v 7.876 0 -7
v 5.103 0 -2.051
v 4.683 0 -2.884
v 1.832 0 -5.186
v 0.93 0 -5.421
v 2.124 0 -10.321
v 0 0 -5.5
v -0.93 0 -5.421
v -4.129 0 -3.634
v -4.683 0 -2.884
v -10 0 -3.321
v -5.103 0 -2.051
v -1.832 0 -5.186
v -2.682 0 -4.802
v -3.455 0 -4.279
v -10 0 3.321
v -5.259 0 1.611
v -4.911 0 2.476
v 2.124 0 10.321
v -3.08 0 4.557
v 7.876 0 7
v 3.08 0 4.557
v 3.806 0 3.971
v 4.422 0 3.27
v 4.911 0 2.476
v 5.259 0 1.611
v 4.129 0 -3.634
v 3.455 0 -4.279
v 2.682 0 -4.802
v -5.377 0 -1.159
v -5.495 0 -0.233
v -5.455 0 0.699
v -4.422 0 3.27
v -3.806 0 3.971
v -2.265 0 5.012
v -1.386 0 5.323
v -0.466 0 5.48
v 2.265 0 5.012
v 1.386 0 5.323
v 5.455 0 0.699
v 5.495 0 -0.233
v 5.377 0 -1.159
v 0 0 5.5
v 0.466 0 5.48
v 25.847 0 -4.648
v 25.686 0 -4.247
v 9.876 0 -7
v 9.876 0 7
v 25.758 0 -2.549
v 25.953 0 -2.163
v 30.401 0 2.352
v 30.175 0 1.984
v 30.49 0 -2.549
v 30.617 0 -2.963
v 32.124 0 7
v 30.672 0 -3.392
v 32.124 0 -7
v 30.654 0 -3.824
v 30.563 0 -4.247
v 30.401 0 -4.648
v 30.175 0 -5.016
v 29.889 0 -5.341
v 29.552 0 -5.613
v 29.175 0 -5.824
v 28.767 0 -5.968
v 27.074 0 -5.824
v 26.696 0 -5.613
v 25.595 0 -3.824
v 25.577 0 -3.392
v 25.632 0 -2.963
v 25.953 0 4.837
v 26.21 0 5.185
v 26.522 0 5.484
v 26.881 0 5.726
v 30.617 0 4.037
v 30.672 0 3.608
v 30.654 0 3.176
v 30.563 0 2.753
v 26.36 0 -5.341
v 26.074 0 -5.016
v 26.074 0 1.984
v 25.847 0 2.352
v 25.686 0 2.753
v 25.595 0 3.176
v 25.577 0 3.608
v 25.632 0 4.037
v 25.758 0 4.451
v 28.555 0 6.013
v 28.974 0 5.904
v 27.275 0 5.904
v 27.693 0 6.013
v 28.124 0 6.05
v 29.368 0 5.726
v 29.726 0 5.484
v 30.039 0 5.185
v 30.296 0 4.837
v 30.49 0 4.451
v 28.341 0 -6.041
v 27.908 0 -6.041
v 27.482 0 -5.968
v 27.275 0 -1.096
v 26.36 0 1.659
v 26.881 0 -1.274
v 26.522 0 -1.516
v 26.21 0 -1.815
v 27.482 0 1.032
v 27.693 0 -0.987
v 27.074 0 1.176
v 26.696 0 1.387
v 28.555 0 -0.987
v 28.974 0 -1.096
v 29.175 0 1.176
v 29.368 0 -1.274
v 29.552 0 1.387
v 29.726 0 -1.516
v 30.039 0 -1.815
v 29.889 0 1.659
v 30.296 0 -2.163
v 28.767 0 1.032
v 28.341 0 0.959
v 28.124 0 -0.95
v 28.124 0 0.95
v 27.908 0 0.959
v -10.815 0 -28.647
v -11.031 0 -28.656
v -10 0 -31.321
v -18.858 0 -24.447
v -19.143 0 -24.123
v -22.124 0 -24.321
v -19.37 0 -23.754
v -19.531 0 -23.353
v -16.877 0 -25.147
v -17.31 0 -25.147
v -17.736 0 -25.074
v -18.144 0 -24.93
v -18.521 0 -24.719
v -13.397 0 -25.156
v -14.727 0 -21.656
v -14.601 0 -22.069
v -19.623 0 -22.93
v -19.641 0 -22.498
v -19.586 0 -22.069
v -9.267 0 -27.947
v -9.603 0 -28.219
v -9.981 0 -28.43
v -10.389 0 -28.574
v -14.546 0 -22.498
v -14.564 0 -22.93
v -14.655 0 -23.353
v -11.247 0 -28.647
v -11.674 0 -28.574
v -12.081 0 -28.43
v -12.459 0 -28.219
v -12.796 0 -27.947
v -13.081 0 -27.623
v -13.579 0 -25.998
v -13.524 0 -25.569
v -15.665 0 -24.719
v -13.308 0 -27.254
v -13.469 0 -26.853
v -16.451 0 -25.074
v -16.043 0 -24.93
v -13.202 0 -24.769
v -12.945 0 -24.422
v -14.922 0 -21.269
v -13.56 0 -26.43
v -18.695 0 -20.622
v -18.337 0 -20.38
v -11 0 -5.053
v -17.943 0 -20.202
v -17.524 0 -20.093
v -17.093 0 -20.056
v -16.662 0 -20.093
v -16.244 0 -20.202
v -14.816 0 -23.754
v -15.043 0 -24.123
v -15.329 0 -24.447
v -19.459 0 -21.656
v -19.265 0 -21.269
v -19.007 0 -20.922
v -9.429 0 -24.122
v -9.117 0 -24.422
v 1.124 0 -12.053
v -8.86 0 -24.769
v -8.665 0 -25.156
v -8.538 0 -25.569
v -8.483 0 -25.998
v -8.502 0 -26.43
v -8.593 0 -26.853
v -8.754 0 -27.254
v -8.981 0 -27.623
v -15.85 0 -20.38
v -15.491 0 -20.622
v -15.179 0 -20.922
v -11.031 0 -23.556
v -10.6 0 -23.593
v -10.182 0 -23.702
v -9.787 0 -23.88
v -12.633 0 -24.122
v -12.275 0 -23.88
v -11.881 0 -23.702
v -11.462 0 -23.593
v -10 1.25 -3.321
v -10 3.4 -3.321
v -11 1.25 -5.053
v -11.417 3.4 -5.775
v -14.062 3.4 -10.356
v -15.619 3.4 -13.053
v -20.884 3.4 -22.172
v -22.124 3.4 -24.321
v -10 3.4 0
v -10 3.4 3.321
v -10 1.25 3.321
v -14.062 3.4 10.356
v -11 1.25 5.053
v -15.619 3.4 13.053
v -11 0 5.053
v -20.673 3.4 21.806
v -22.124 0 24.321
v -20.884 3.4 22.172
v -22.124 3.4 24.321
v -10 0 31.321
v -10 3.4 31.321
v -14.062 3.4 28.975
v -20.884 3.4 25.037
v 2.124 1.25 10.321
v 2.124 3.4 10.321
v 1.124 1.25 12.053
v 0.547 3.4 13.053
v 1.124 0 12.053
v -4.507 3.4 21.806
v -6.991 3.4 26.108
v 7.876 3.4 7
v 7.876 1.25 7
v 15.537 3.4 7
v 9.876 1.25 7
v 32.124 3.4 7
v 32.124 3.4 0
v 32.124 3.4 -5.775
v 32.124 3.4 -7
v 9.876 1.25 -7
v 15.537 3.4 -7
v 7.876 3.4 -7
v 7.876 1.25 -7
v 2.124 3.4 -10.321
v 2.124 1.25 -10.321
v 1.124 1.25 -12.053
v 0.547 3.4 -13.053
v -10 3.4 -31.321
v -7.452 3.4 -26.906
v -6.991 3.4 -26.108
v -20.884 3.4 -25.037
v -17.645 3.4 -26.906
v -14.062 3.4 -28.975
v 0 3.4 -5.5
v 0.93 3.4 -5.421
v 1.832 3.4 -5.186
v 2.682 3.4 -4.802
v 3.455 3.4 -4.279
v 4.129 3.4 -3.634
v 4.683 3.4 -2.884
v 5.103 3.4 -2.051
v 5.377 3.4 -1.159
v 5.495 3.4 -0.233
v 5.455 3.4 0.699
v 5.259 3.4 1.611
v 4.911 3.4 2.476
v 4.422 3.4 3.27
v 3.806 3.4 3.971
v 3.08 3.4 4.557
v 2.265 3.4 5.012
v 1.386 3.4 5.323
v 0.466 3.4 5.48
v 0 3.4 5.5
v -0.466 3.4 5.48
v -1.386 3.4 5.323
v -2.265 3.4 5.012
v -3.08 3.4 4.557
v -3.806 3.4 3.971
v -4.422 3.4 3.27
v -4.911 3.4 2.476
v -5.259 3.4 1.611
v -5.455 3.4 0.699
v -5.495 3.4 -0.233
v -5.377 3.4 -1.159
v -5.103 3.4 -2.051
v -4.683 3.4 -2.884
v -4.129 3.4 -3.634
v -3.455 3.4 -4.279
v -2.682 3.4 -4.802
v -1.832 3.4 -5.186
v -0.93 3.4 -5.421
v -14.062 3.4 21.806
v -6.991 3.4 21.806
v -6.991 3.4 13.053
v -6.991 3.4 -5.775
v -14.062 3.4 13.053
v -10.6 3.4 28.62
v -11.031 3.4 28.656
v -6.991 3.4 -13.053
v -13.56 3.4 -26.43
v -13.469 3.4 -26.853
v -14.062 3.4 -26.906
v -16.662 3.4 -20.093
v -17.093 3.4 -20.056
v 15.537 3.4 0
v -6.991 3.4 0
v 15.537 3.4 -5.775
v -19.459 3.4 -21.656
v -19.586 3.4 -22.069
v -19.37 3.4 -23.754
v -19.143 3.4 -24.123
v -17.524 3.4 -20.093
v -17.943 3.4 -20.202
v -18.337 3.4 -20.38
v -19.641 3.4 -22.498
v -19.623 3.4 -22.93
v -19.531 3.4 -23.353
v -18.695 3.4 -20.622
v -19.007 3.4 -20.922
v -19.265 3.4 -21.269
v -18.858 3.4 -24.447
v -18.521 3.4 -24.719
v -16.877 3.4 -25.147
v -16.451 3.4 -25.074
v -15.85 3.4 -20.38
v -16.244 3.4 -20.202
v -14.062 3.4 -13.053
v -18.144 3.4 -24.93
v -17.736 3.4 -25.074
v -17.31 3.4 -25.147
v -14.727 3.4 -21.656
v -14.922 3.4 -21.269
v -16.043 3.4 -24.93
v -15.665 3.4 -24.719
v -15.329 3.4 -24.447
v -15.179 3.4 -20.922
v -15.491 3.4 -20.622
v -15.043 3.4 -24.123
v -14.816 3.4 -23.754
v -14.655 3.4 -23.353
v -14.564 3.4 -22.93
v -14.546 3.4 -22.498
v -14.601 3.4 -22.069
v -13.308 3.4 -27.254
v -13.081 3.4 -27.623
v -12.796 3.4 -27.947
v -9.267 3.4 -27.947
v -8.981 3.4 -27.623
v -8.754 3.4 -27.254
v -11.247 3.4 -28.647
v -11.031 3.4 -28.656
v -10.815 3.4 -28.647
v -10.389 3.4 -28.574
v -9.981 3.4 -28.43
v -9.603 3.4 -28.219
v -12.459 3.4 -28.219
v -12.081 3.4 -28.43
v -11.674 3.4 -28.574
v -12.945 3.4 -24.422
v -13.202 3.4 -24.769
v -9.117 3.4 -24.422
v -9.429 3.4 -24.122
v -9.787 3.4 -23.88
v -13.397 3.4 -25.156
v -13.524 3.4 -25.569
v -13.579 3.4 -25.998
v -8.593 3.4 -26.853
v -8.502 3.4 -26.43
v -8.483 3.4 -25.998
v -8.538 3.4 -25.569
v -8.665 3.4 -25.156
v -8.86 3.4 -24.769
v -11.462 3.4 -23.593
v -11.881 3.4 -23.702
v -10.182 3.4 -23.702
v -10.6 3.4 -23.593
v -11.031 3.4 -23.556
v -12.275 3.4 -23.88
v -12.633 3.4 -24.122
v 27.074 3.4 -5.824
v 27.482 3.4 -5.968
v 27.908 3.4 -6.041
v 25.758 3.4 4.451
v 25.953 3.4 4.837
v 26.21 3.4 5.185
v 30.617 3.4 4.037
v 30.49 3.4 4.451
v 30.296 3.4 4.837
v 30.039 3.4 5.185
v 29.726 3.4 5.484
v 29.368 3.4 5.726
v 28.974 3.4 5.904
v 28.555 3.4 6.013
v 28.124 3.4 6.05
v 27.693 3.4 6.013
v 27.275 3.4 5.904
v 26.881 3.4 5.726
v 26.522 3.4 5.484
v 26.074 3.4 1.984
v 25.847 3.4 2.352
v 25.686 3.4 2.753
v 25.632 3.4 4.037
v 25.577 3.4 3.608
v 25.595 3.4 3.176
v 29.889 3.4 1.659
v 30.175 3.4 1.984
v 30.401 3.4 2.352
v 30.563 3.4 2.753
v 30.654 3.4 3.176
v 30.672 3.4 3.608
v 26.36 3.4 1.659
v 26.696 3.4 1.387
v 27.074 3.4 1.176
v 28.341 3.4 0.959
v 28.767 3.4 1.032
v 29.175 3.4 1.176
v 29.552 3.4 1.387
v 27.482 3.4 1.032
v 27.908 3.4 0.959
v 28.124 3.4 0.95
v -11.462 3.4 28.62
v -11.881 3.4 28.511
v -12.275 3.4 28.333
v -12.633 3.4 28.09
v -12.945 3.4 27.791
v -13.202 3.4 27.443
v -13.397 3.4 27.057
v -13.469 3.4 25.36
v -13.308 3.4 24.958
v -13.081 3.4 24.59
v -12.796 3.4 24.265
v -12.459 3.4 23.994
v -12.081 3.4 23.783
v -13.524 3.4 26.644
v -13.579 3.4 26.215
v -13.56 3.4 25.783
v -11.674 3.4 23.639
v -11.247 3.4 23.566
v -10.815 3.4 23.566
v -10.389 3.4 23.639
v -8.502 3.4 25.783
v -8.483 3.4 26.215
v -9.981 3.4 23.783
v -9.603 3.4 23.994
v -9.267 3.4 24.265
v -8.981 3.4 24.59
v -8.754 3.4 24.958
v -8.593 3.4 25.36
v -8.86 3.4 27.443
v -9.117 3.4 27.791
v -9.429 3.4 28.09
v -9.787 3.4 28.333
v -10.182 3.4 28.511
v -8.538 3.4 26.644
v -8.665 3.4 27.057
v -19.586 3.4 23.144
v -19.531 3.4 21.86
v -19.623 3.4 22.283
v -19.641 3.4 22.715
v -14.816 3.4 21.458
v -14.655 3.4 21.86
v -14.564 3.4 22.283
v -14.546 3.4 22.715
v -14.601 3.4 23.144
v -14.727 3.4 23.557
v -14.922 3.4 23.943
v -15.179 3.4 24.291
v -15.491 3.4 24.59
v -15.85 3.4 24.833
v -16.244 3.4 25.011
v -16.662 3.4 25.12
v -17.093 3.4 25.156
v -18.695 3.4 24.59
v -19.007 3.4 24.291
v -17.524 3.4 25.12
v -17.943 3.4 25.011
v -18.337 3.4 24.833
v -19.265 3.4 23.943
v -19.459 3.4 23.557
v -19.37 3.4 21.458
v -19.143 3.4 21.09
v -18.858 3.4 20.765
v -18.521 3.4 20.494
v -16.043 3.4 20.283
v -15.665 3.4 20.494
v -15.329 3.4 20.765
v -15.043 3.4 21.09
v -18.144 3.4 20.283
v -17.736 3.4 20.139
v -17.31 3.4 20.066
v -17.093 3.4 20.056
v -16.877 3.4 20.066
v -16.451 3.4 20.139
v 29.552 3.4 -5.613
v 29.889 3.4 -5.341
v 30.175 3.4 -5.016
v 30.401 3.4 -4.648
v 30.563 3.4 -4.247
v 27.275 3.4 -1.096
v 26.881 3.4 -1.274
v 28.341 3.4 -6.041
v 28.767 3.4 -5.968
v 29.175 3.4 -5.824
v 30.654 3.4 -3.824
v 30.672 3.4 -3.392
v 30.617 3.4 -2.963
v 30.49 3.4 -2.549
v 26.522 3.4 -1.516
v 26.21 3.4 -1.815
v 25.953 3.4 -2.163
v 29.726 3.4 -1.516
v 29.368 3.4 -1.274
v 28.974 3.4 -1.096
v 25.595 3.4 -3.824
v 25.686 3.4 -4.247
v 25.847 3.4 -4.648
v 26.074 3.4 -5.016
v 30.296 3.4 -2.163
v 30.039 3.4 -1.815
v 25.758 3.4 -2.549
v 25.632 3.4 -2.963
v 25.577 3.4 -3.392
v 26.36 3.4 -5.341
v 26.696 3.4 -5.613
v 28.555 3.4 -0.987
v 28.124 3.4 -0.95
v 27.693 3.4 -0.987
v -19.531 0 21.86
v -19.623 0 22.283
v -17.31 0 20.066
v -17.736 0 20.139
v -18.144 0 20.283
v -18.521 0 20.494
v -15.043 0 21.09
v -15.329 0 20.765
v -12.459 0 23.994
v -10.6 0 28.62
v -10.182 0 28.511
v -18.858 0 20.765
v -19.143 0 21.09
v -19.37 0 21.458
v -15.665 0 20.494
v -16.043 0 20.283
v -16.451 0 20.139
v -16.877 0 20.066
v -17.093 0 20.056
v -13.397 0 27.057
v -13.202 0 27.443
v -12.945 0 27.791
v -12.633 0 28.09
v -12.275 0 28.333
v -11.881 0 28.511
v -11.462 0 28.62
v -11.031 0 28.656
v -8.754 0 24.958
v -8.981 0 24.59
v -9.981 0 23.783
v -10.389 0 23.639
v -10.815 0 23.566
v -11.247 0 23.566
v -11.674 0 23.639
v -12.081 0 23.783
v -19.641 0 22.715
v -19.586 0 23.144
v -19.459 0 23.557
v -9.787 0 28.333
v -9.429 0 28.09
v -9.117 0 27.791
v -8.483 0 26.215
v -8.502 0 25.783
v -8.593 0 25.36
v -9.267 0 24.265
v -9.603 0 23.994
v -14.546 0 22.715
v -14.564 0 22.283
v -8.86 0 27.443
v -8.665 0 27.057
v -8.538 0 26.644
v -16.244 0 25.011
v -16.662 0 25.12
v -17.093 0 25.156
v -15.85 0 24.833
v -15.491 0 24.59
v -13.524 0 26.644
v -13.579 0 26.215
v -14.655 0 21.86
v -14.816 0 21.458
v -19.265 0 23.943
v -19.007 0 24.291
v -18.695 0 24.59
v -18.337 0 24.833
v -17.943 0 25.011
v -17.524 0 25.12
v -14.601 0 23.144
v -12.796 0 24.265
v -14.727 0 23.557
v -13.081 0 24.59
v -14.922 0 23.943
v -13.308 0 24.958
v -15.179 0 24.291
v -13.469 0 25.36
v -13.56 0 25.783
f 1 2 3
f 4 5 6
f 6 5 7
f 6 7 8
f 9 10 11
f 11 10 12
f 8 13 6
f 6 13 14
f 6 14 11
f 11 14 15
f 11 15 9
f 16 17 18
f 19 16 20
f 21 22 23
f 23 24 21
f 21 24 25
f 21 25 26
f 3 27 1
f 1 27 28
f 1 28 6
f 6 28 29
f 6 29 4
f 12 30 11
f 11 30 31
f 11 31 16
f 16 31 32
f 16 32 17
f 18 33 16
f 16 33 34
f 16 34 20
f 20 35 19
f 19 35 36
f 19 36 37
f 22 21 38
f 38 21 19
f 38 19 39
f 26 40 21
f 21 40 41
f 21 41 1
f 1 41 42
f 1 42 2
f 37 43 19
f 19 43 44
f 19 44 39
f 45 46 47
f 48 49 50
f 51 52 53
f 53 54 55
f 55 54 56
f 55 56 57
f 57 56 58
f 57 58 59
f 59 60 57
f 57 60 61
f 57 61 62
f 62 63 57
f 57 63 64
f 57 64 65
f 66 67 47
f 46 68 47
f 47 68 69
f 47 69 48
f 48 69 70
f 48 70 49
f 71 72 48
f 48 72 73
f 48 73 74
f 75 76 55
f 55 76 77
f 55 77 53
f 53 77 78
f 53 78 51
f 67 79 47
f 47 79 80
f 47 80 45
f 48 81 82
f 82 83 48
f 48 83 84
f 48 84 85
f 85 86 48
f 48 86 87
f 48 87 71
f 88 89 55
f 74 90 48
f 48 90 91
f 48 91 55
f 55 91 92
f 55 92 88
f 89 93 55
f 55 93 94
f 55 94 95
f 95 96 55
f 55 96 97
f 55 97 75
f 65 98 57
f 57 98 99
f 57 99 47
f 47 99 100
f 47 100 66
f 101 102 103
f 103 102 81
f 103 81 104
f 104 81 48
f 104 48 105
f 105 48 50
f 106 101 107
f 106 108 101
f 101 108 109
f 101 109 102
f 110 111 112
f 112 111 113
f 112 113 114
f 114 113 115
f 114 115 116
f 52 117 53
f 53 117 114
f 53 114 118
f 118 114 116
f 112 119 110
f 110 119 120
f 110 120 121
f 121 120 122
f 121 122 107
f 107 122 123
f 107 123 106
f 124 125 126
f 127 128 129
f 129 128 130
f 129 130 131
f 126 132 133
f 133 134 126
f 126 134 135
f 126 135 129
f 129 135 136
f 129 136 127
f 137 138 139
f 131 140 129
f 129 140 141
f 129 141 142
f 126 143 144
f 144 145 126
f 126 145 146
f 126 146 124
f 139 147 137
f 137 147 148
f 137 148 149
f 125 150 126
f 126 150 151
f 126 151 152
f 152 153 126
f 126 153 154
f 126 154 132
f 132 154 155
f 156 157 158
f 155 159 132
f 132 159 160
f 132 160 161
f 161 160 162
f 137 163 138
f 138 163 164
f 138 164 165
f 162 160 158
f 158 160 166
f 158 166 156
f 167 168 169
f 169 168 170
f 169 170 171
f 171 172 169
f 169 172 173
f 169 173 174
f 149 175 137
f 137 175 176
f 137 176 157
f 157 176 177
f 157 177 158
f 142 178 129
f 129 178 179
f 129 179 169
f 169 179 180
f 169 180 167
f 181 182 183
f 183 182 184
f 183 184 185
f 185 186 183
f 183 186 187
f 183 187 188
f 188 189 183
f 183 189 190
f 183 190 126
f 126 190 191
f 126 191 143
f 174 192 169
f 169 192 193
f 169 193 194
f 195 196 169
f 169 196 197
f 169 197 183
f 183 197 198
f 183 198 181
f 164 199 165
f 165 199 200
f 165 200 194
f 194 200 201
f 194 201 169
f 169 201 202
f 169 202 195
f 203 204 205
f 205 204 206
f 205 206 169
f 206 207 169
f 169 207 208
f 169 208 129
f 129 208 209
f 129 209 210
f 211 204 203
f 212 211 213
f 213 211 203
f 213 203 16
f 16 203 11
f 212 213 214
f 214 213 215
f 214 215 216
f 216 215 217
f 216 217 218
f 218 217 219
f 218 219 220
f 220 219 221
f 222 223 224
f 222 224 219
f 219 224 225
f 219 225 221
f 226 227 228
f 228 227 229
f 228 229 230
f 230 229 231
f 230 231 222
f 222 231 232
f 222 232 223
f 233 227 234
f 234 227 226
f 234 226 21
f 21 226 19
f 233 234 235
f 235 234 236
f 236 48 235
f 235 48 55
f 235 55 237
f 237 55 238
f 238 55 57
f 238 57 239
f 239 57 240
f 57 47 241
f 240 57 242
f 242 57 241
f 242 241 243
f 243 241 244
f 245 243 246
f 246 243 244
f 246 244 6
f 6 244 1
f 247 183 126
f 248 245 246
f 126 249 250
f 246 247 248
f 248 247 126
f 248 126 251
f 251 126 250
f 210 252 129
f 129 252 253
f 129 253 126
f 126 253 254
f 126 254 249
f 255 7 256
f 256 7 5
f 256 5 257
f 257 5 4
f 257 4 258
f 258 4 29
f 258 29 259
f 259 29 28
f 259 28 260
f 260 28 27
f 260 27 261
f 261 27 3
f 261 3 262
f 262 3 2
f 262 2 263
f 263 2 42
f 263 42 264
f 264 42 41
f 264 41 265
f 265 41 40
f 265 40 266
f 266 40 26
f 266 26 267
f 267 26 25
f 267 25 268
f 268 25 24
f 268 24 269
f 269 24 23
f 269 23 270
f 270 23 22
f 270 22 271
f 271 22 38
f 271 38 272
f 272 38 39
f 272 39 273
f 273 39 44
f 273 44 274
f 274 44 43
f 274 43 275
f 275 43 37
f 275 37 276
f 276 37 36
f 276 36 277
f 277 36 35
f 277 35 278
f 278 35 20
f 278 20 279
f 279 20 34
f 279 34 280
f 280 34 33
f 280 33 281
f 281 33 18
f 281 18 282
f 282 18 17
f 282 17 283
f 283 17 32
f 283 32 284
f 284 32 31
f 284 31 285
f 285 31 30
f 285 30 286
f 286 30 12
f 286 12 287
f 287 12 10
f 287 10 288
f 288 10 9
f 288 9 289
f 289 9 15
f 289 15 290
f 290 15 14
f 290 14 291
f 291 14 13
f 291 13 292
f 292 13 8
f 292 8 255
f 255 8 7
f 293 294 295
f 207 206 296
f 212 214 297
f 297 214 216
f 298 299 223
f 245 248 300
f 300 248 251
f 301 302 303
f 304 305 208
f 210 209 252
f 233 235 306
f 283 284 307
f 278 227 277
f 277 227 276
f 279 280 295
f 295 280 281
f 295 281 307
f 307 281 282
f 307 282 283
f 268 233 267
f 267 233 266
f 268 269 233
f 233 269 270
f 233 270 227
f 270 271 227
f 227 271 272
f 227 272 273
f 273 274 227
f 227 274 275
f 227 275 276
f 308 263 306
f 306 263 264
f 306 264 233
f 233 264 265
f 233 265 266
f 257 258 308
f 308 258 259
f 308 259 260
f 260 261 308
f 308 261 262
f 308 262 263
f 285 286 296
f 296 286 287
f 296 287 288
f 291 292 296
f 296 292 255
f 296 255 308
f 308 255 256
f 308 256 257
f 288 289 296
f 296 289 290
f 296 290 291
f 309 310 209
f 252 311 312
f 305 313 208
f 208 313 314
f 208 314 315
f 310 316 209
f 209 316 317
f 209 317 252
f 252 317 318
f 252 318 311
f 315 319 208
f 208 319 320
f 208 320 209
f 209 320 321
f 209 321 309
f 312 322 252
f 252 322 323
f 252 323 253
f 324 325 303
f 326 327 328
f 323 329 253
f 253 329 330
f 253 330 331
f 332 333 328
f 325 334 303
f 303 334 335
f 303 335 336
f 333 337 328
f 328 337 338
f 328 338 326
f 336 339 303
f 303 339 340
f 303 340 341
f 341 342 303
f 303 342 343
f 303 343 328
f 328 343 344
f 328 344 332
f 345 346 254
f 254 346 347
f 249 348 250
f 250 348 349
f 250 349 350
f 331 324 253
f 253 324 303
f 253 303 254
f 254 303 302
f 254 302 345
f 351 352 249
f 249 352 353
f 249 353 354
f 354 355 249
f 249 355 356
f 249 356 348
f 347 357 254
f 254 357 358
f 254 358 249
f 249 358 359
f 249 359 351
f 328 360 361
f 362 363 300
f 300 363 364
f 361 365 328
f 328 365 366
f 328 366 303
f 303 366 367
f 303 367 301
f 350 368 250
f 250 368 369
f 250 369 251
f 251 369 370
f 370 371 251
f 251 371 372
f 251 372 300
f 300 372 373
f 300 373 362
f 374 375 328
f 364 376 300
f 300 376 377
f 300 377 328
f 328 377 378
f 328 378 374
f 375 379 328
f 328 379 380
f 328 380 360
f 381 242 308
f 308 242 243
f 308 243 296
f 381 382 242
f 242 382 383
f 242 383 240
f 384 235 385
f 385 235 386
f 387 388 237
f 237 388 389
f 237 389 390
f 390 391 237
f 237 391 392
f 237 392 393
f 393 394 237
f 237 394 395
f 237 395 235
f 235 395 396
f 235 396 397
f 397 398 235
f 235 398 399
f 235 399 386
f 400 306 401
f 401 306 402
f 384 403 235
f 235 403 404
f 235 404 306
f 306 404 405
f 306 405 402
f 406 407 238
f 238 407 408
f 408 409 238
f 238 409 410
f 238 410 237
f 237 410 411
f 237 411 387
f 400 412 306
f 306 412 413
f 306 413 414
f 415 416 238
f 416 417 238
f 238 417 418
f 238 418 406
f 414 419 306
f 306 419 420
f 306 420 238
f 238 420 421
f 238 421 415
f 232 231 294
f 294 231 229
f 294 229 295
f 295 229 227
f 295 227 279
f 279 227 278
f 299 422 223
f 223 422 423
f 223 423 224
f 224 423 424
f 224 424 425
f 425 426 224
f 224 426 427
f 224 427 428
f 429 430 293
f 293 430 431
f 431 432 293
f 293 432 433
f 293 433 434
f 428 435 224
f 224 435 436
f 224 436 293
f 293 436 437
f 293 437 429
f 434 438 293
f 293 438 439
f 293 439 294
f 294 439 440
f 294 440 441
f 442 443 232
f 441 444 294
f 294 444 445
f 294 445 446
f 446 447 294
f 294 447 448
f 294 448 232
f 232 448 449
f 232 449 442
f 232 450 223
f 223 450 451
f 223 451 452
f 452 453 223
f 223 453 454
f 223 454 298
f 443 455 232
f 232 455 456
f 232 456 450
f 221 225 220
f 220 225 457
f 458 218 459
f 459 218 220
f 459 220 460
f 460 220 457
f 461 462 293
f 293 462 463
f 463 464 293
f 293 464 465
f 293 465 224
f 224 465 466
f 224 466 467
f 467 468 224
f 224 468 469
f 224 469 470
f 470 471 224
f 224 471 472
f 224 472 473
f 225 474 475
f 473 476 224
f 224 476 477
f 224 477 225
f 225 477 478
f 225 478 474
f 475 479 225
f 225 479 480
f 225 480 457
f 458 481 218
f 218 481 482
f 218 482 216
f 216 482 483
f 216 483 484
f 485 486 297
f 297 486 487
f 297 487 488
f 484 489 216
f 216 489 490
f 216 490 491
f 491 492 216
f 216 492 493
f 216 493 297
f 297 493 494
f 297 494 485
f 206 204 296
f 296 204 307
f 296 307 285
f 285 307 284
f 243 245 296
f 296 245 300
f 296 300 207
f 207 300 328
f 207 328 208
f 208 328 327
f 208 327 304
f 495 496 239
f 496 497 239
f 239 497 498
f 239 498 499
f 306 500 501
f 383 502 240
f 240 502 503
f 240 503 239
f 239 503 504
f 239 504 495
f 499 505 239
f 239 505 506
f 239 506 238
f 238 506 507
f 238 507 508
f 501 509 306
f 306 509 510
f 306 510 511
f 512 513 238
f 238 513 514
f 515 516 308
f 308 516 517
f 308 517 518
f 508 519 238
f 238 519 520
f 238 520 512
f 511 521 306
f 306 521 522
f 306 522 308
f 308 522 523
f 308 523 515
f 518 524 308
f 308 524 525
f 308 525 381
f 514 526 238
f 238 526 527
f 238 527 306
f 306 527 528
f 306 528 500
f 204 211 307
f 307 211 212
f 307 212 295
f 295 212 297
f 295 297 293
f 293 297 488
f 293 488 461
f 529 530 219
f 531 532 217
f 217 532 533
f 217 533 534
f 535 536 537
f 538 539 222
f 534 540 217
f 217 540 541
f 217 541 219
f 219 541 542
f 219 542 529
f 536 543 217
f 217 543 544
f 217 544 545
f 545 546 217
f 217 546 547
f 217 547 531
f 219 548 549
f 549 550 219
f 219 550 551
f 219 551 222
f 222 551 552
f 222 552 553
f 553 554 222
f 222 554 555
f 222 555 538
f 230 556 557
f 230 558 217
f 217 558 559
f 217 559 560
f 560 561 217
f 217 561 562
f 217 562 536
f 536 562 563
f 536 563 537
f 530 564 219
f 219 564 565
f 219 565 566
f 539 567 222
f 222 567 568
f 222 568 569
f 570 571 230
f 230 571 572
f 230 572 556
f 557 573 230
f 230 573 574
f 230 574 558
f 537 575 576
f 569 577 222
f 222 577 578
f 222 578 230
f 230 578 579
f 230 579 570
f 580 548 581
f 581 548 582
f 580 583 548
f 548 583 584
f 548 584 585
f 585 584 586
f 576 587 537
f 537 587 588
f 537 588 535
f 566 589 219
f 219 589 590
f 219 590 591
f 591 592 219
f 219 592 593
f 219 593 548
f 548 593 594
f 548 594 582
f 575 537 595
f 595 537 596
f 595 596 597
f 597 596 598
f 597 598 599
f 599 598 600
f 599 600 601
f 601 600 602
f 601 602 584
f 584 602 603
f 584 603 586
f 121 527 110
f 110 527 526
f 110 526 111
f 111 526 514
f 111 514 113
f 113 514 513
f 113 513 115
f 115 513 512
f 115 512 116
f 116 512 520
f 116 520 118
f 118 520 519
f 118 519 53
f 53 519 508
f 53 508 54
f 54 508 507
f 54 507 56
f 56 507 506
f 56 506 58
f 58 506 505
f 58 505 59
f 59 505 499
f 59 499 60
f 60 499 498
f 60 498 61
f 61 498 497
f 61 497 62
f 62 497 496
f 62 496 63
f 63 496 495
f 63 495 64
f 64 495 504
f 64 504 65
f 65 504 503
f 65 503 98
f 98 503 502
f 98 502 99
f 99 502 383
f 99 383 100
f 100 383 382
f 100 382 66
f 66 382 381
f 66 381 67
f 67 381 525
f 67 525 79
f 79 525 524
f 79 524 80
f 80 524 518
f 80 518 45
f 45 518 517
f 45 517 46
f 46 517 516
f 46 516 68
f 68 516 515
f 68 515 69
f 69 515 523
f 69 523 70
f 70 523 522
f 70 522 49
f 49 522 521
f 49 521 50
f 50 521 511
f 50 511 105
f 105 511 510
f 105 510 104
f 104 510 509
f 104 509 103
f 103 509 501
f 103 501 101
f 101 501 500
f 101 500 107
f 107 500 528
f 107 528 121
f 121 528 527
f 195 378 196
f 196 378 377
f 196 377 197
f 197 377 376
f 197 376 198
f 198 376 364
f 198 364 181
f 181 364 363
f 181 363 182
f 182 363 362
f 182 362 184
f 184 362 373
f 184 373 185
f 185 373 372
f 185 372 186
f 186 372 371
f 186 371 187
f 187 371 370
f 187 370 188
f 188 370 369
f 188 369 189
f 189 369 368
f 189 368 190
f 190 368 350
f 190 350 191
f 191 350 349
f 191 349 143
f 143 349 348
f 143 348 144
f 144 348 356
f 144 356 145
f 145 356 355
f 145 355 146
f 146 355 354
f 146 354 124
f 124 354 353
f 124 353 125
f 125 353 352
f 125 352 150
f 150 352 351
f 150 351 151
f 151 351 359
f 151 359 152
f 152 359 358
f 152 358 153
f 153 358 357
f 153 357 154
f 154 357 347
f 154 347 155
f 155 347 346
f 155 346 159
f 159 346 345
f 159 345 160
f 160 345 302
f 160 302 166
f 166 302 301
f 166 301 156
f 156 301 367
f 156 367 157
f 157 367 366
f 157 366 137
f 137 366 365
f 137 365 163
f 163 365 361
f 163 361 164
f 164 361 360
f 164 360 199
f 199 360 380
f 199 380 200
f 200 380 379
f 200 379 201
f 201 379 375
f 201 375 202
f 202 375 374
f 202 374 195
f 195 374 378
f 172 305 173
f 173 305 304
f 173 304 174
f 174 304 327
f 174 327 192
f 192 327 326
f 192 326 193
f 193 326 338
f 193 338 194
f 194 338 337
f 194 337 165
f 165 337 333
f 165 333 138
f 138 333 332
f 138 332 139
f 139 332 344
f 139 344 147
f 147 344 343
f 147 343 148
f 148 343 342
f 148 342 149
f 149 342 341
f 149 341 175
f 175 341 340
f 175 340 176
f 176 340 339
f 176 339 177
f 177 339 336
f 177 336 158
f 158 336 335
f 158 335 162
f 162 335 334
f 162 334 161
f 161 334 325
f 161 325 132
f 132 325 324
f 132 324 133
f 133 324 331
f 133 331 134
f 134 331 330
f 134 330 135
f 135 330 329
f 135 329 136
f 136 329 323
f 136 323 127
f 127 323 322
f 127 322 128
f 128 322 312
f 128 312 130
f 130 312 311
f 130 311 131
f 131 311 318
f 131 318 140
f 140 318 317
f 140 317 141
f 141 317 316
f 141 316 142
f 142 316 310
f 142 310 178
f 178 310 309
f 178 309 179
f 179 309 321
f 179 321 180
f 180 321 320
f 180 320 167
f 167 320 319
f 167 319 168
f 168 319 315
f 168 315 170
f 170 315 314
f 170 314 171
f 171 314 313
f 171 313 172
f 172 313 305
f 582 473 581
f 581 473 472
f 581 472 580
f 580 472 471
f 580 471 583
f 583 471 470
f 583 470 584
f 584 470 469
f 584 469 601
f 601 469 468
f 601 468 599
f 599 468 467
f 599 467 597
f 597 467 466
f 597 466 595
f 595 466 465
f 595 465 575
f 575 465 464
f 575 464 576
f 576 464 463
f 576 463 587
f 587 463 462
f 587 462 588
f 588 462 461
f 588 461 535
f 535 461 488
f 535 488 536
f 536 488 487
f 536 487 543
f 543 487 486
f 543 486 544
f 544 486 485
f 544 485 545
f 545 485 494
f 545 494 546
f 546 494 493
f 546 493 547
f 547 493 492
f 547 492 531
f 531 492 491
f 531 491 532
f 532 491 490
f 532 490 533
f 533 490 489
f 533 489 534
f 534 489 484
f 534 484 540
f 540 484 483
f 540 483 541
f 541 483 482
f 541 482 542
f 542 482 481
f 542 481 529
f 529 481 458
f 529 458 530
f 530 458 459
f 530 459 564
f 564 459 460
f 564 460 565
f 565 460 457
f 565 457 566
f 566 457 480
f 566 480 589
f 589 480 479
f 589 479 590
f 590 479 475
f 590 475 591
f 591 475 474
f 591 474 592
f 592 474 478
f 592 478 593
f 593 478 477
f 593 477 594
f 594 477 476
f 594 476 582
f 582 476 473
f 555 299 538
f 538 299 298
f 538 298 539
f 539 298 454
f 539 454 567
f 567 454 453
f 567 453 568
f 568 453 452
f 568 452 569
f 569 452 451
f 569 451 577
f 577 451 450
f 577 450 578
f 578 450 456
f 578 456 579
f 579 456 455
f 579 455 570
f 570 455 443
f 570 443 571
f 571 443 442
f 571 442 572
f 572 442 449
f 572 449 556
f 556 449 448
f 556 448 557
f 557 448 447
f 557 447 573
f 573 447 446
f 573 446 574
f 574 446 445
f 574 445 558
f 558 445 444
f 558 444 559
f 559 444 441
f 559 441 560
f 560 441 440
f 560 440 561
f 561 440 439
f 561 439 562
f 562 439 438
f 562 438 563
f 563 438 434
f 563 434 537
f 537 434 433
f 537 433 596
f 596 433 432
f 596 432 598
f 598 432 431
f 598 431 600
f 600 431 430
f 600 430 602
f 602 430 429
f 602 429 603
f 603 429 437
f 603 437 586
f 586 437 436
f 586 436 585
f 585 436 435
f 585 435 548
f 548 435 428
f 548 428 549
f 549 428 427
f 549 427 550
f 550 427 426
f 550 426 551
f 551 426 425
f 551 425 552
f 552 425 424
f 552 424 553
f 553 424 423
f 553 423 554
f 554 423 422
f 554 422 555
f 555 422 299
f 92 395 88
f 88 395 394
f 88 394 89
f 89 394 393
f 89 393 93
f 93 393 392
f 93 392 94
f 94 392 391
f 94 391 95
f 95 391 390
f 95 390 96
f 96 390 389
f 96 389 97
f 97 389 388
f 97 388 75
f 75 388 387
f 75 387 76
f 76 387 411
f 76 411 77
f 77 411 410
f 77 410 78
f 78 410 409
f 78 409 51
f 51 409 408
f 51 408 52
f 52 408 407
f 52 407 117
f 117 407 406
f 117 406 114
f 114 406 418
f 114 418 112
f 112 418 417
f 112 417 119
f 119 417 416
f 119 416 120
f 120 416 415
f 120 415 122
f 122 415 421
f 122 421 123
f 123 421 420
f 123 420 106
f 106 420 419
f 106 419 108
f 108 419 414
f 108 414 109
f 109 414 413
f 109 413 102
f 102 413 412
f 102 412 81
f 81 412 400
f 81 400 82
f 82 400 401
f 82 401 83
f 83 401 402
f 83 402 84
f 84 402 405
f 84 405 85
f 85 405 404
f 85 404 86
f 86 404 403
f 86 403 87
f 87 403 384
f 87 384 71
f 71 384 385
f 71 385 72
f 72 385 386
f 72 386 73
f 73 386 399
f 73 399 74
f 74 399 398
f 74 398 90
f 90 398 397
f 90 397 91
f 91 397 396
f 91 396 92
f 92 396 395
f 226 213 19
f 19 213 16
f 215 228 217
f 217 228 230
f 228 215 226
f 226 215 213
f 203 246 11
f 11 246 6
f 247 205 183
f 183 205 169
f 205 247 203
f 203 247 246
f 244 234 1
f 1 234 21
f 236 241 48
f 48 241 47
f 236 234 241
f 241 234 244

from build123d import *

# Parameters (mm, degrees)
SKETCH1_R           = 5.5
BOSS_EXTRUDE1_DEPTH = 3.4
SKETCH3_R           = 2.55
CUT_EXTRUDE1_DEPTH  = 45.994538027
SKETCH4_W           = 2
SKETCH4_H           = 14
CUT_EXTRUDE2_DEPTH  = 1.25


with BuildPart() as part:
    # Sketch1 → Boss-Extrude1 (new body)
    # profile 1 of 7: a face of its own
    with BuildSketch(Plane(origin=(0, 0, 0), x_dir=(1, 0, 0), z_dir=(0, 1, 0))):
        Polygon((7.875644347, -7), (7.875644347, 7), (2.124355653, 10.320508076), (-10, 3.320508076), (-10, -3.320508076), (2.124355653, -10.320508076), align=None)
        with Locations(Location((0, 0, 0), (0, 0, 270))):
            Circle(SKETCH1_R, mode=Mode.SUBTRACT)
    # profile 2 of 7: a face of its own
    with BuildSketch(Plane(origin=(0, 0, 0), x_dir=(1, 0, 0), z_dir=(0, 1, 0))):
        Polygon((7.875644347, -7), (20, 0), (7.875644347, 7), align=None)
    # profile 3 of 7: a face of its own
    with BuildSketch(Plane(origin=(0, 0, 0), x_dir=(1, 0, 0), z_dir=(0, 1, 0))):
        Polygon((7.875644347, 7), (20, 0), (7.875644347, -7), (32.124355653, -7), (32.124355653, 7), align=None)
    # profile 4 of 7: a face of its own
    with BuildSketch(Plane(origin=(0, 0, 0), x_dir=(1, 0, 0), z_dir=(0, 1, 0))):
        Polygon((-10, -17.320508076), (2.124355653, -10.320508076), (-10, -3.320508076), align=None)
    # profile 5 of 7: a face of its own
    with BuildSketch(Plane(origin=(0, 0, 0), x_dir=(1, 0, 0), z_dir=(0, 1, 0))):
        Polygon((-10, -31.320508076), (2.124355653, -10.320508076), (-10, -17.320508076), (-10, -3.320508076), (-22.124355653, -24.320508076), align=None)
    # profile 6 of 7: a face of its own
    with BuildSketch(Plane(origin=(0, 0, 0), x_dir=(1, 0, 0), z_dir=(0, 1, 0))):
        Polygon((-10, 3.320508076), (2.124355653, 10.320508076), (-10, 17.320508076), align=None)
    # profile 7 of 7: a face of its own
    with BuildSketch(Plane(origin=(0, 0, 0), x_dir=(1, 0, 0), z_dir=(0, 1, 0))):
        Polygon((-10, 17.320508076), (2.124355653, 10.320508076), (-10, 31.320508076), (-22.124355653, 24.320508076), (-10, 3.320508076), align=None)
    extrude(amount=BOSS_EXTRUDE1_DEPTH)

    # Sketch3 → Cut-Extrude1 (cut, through all)
    with BuildSketch(Plane(origin=(0, 3.4, 0), x_dir=(1, 0, 0), z_dir=(0, 1, 0))):
        with Locations(Location((28.124355653, 3.5, 0), (0, 0, 270))):
            Circle(SKETCH3_R)
        with Locations(Location((28.124355653, -3.5, 0), (0, 0, 90))):
            Circle(SKETCH3_R)
        with Locations(Location((-11.031088913, -26.106406461, 0), (0, 0, 270))):
            Circle(SKETCH3_R)
        with Locations(Location((-17.09326674, -22.606406461, 0), (0, 0, 90))):
            Circle(SKETCH3_R)
        with Locations(Location((-17.09326674, 22.606406461, 0), (0, 0, 270))):
            Circle(SKETCH3_R)
        with Locations(Location((-11.031088913, 26.106406461, 0), (0, 0, 90))):
            Circle(SKETCH3_R)
    extrude(amount=-CUT_EXTRUDE1_DEPTH, mode=Mode.SUBTRACT)

    # Sketch4 → Cut-Extrude2 (cut)
    with BuildSketch(Plane.XZ):
        with Locations((8.875644347, 0)):
            Rectangle(SKETCH4_W, SKETCH4_H)
        Polygon((-11, -5.052558883), (-10, -3.320508076), (2.124355653, -10.320508076), (1.124355653, -12.052558883), align=None)
        Polygon((1.124355653, 12.052558883), (2.124355653, 10.320508076), (-10, 3.320508076), (-11, 5.052558883), align=None)
    extrude(amount=-CUT_EXTRUDE2_DEPTH, mode=Mode.SUBTRACT)


solid = part.part
